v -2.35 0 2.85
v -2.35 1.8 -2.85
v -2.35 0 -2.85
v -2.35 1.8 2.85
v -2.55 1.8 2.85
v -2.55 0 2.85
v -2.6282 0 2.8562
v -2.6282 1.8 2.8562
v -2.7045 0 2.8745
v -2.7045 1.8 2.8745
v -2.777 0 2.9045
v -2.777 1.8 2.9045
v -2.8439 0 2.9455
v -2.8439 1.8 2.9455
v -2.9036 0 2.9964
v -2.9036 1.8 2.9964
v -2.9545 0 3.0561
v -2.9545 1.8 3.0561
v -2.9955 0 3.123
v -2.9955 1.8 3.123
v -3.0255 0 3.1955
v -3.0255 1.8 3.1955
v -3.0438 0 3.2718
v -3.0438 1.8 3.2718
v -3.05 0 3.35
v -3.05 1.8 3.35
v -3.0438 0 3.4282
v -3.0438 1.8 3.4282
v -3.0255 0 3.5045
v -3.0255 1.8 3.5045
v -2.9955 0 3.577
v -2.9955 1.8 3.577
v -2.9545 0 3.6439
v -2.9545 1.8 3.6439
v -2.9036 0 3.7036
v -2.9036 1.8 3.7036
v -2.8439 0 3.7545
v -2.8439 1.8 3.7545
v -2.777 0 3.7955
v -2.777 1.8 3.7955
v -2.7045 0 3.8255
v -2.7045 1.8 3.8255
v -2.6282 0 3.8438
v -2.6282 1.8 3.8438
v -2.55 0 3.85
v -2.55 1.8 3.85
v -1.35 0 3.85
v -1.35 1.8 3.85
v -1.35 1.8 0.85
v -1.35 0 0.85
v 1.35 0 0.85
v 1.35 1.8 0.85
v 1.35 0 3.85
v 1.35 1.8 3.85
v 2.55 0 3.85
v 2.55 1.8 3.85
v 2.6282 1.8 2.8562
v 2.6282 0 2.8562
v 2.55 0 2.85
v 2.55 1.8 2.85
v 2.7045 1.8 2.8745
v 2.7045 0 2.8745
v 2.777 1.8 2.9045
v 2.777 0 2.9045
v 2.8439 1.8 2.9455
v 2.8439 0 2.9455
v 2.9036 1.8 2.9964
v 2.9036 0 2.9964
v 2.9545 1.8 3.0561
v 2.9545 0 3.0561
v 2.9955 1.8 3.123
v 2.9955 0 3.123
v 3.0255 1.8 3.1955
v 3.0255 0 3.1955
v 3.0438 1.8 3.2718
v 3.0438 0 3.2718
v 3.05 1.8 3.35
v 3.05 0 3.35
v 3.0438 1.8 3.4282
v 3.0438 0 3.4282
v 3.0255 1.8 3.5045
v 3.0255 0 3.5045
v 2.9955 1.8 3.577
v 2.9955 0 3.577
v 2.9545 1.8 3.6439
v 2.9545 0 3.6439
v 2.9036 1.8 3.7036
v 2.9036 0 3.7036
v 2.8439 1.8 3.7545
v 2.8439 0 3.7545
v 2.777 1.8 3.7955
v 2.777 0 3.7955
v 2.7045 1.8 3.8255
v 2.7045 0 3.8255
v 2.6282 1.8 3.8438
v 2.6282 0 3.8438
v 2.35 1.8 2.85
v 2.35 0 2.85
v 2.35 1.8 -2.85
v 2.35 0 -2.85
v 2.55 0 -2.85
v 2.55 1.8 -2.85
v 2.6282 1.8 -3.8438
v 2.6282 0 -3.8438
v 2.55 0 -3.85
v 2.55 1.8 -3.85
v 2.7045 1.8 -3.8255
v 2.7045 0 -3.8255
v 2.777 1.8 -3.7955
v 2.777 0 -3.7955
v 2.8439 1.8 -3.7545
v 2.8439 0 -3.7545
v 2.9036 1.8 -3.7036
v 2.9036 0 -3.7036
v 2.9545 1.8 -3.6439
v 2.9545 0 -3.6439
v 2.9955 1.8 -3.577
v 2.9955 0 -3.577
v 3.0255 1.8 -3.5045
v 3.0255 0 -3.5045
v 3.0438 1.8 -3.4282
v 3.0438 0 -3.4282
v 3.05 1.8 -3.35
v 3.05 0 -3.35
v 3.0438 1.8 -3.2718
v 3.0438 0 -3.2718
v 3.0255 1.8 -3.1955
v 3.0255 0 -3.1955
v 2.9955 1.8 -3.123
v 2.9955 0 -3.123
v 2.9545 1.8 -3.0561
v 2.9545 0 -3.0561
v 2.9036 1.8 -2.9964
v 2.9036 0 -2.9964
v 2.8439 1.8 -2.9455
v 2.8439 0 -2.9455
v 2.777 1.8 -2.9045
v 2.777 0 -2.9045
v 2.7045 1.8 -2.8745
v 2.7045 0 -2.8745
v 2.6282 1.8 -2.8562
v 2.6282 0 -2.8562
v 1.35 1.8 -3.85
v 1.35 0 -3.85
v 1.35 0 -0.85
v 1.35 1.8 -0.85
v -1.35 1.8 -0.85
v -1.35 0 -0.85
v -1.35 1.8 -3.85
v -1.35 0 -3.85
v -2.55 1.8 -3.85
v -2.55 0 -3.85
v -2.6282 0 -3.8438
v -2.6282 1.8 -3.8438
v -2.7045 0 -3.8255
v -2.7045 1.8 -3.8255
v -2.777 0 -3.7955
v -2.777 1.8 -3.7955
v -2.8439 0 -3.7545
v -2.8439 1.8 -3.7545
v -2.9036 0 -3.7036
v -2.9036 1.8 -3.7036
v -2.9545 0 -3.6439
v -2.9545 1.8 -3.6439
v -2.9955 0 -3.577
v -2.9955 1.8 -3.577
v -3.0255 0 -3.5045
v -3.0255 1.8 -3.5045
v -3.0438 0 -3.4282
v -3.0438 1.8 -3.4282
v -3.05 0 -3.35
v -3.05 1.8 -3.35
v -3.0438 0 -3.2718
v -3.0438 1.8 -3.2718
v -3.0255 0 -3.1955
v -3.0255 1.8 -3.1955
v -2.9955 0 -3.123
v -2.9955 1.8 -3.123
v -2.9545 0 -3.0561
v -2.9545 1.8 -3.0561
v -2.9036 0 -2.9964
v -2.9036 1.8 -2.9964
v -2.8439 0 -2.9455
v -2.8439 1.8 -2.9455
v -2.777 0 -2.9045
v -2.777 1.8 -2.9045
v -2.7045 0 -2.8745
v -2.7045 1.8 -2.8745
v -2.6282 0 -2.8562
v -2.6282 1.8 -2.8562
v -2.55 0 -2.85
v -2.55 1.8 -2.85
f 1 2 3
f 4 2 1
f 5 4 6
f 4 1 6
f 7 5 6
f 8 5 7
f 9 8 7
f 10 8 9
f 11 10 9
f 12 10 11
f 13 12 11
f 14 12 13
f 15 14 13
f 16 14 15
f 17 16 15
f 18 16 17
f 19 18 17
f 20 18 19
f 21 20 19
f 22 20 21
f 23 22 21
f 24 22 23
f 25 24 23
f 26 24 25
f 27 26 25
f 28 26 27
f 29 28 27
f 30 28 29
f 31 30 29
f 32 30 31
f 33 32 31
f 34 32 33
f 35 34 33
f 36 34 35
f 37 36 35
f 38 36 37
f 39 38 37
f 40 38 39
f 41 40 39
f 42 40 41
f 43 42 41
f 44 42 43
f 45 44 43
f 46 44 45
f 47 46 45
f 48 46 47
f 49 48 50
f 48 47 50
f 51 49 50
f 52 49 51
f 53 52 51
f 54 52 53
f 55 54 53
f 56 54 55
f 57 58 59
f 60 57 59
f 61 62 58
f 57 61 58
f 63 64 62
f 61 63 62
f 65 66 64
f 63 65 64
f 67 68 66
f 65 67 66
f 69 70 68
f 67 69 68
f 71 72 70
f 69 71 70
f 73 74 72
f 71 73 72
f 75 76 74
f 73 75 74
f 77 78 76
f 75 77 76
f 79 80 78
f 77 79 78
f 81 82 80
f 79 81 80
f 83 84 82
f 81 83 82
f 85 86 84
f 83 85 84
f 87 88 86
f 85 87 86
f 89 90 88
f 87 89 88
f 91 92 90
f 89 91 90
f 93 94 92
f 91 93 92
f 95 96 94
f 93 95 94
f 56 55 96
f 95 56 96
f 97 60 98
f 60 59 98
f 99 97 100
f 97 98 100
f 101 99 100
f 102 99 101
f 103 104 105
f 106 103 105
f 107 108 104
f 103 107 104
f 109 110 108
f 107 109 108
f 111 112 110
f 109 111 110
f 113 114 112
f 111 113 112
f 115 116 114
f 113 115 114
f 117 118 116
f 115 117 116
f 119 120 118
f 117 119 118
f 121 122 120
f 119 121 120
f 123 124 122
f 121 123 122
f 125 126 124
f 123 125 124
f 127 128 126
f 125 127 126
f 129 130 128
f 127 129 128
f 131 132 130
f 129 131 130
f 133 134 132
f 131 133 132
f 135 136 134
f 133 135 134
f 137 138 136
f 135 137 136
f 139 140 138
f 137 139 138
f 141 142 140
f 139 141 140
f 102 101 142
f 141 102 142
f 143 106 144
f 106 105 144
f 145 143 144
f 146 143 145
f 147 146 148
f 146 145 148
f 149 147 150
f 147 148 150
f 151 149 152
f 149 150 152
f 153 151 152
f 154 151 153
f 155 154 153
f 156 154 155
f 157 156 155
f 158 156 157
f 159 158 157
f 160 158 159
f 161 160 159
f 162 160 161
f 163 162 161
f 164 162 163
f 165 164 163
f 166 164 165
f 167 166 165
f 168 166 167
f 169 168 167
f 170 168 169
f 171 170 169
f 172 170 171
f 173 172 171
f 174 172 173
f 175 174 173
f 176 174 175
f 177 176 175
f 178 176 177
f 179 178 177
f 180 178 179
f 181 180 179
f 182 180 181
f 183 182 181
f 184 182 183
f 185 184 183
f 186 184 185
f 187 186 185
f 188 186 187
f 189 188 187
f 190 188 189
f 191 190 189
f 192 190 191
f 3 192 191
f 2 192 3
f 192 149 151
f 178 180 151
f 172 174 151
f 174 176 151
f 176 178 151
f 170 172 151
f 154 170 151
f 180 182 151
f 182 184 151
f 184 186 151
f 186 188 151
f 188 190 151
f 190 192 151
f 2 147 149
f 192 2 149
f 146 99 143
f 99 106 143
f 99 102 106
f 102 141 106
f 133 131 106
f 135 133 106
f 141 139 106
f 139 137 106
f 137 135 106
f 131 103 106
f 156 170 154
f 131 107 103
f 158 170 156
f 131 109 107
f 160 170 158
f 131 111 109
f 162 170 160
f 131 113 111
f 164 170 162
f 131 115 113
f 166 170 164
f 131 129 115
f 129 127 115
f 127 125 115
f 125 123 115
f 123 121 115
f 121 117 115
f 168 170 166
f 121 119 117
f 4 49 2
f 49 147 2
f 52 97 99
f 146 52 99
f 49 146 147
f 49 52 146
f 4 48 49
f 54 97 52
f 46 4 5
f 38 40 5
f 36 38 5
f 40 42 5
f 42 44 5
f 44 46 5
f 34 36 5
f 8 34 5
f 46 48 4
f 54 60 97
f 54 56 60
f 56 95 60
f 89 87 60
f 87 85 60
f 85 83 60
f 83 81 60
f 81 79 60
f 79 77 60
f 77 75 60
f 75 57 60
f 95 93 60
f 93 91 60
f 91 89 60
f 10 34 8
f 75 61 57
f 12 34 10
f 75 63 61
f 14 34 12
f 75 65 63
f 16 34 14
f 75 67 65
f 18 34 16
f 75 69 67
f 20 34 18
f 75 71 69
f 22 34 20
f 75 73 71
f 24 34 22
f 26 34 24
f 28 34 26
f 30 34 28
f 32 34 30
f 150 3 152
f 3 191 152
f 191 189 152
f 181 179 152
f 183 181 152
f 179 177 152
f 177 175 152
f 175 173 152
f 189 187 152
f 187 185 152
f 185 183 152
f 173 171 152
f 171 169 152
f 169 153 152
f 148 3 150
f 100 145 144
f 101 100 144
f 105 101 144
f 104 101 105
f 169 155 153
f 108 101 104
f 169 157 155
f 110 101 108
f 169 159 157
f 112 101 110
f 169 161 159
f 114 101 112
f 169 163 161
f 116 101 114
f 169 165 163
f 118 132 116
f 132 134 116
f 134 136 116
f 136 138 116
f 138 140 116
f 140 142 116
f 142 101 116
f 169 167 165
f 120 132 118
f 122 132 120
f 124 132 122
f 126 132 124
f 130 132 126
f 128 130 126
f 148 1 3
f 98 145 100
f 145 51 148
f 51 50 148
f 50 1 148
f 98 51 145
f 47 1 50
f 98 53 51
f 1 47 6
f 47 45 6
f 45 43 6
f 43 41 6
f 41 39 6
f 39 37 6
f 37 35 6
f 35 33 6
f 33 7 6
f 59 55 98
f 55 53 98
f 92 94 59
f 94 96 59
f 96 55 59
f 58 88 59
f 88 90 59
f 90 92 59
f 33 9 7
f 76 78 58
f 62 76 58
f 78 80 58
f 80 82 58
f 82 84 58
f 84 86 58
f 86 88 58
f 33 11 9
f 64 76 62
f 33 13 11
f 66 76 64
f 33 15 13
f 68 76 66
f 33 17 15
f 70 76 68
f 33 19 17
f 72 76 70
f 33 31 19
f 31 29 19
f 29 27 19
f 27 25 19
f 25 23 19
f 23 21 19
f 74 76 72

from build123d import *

# Parameters (mm, degrees)
BOSS_EXTRUDE1_DEPTH = 1.8


with BuildPart() as part:
    # Sketch1 → Boss-Extrude1 (new body)
    with BuildSketch(Plane(origin=(0, 0, 0), x_dir=(1, 0, 0), z_dir=(0, 1, 0))):
        with BuildLine():
            Line((-2.35, -2.85), (-2.55, -2.85))
            ThreePointArc((-2.55, -2.85), (-3.05, -3.35), (-2.55, -3.85))
            Line((-2.55, -3.85), (-1.35, -3.85))
            Line((-1.35, -3.85), (-1.35, -0.85))
            Line((-1.35, -0.85), (1.35, -0.85))
            Line((1.35, -0.85), (1.35, -3.85))
            Line((1.35, -3.85), (2.55, -3.85))
            ThreePointArc((2.55, -3.85), (3.05, -3.35), (2.55, -2.85))
            Line((2.55, -2.85), (2.35, -2.85))
            Line((2.35, -2.85), (2.35, 2.85))
            Line((2.35, 2.85), (2.55, 2.85))
            ThreePointArc((2.55, 2.85), (3.05, 3.35), (2.55, 3.85))
            Line((2.55, 3.85), (1.35, 3.85))
            Line((1.35, 3.85), (1.35, 0.85))
            Line((1.35, 0.85), (-1.35, 0.85))
            Line((-1.35, 0.85), (-1.35, 3.85))
            Line((-1.35, 3.85), (-2.55, 3.85))
            ThreePointArc((-2.55, 3.85), (-3.05, 3.35), (-2.55, 2.85))
            Line((-2.55, 2.85), (-2.35, 2.85))
            Line((-2.35, 2.85), (-2.35, -2.85))
        make_face()
    extrude(amount=BOSS_EXTRUDE1_DEPTH)


solid = part.part
